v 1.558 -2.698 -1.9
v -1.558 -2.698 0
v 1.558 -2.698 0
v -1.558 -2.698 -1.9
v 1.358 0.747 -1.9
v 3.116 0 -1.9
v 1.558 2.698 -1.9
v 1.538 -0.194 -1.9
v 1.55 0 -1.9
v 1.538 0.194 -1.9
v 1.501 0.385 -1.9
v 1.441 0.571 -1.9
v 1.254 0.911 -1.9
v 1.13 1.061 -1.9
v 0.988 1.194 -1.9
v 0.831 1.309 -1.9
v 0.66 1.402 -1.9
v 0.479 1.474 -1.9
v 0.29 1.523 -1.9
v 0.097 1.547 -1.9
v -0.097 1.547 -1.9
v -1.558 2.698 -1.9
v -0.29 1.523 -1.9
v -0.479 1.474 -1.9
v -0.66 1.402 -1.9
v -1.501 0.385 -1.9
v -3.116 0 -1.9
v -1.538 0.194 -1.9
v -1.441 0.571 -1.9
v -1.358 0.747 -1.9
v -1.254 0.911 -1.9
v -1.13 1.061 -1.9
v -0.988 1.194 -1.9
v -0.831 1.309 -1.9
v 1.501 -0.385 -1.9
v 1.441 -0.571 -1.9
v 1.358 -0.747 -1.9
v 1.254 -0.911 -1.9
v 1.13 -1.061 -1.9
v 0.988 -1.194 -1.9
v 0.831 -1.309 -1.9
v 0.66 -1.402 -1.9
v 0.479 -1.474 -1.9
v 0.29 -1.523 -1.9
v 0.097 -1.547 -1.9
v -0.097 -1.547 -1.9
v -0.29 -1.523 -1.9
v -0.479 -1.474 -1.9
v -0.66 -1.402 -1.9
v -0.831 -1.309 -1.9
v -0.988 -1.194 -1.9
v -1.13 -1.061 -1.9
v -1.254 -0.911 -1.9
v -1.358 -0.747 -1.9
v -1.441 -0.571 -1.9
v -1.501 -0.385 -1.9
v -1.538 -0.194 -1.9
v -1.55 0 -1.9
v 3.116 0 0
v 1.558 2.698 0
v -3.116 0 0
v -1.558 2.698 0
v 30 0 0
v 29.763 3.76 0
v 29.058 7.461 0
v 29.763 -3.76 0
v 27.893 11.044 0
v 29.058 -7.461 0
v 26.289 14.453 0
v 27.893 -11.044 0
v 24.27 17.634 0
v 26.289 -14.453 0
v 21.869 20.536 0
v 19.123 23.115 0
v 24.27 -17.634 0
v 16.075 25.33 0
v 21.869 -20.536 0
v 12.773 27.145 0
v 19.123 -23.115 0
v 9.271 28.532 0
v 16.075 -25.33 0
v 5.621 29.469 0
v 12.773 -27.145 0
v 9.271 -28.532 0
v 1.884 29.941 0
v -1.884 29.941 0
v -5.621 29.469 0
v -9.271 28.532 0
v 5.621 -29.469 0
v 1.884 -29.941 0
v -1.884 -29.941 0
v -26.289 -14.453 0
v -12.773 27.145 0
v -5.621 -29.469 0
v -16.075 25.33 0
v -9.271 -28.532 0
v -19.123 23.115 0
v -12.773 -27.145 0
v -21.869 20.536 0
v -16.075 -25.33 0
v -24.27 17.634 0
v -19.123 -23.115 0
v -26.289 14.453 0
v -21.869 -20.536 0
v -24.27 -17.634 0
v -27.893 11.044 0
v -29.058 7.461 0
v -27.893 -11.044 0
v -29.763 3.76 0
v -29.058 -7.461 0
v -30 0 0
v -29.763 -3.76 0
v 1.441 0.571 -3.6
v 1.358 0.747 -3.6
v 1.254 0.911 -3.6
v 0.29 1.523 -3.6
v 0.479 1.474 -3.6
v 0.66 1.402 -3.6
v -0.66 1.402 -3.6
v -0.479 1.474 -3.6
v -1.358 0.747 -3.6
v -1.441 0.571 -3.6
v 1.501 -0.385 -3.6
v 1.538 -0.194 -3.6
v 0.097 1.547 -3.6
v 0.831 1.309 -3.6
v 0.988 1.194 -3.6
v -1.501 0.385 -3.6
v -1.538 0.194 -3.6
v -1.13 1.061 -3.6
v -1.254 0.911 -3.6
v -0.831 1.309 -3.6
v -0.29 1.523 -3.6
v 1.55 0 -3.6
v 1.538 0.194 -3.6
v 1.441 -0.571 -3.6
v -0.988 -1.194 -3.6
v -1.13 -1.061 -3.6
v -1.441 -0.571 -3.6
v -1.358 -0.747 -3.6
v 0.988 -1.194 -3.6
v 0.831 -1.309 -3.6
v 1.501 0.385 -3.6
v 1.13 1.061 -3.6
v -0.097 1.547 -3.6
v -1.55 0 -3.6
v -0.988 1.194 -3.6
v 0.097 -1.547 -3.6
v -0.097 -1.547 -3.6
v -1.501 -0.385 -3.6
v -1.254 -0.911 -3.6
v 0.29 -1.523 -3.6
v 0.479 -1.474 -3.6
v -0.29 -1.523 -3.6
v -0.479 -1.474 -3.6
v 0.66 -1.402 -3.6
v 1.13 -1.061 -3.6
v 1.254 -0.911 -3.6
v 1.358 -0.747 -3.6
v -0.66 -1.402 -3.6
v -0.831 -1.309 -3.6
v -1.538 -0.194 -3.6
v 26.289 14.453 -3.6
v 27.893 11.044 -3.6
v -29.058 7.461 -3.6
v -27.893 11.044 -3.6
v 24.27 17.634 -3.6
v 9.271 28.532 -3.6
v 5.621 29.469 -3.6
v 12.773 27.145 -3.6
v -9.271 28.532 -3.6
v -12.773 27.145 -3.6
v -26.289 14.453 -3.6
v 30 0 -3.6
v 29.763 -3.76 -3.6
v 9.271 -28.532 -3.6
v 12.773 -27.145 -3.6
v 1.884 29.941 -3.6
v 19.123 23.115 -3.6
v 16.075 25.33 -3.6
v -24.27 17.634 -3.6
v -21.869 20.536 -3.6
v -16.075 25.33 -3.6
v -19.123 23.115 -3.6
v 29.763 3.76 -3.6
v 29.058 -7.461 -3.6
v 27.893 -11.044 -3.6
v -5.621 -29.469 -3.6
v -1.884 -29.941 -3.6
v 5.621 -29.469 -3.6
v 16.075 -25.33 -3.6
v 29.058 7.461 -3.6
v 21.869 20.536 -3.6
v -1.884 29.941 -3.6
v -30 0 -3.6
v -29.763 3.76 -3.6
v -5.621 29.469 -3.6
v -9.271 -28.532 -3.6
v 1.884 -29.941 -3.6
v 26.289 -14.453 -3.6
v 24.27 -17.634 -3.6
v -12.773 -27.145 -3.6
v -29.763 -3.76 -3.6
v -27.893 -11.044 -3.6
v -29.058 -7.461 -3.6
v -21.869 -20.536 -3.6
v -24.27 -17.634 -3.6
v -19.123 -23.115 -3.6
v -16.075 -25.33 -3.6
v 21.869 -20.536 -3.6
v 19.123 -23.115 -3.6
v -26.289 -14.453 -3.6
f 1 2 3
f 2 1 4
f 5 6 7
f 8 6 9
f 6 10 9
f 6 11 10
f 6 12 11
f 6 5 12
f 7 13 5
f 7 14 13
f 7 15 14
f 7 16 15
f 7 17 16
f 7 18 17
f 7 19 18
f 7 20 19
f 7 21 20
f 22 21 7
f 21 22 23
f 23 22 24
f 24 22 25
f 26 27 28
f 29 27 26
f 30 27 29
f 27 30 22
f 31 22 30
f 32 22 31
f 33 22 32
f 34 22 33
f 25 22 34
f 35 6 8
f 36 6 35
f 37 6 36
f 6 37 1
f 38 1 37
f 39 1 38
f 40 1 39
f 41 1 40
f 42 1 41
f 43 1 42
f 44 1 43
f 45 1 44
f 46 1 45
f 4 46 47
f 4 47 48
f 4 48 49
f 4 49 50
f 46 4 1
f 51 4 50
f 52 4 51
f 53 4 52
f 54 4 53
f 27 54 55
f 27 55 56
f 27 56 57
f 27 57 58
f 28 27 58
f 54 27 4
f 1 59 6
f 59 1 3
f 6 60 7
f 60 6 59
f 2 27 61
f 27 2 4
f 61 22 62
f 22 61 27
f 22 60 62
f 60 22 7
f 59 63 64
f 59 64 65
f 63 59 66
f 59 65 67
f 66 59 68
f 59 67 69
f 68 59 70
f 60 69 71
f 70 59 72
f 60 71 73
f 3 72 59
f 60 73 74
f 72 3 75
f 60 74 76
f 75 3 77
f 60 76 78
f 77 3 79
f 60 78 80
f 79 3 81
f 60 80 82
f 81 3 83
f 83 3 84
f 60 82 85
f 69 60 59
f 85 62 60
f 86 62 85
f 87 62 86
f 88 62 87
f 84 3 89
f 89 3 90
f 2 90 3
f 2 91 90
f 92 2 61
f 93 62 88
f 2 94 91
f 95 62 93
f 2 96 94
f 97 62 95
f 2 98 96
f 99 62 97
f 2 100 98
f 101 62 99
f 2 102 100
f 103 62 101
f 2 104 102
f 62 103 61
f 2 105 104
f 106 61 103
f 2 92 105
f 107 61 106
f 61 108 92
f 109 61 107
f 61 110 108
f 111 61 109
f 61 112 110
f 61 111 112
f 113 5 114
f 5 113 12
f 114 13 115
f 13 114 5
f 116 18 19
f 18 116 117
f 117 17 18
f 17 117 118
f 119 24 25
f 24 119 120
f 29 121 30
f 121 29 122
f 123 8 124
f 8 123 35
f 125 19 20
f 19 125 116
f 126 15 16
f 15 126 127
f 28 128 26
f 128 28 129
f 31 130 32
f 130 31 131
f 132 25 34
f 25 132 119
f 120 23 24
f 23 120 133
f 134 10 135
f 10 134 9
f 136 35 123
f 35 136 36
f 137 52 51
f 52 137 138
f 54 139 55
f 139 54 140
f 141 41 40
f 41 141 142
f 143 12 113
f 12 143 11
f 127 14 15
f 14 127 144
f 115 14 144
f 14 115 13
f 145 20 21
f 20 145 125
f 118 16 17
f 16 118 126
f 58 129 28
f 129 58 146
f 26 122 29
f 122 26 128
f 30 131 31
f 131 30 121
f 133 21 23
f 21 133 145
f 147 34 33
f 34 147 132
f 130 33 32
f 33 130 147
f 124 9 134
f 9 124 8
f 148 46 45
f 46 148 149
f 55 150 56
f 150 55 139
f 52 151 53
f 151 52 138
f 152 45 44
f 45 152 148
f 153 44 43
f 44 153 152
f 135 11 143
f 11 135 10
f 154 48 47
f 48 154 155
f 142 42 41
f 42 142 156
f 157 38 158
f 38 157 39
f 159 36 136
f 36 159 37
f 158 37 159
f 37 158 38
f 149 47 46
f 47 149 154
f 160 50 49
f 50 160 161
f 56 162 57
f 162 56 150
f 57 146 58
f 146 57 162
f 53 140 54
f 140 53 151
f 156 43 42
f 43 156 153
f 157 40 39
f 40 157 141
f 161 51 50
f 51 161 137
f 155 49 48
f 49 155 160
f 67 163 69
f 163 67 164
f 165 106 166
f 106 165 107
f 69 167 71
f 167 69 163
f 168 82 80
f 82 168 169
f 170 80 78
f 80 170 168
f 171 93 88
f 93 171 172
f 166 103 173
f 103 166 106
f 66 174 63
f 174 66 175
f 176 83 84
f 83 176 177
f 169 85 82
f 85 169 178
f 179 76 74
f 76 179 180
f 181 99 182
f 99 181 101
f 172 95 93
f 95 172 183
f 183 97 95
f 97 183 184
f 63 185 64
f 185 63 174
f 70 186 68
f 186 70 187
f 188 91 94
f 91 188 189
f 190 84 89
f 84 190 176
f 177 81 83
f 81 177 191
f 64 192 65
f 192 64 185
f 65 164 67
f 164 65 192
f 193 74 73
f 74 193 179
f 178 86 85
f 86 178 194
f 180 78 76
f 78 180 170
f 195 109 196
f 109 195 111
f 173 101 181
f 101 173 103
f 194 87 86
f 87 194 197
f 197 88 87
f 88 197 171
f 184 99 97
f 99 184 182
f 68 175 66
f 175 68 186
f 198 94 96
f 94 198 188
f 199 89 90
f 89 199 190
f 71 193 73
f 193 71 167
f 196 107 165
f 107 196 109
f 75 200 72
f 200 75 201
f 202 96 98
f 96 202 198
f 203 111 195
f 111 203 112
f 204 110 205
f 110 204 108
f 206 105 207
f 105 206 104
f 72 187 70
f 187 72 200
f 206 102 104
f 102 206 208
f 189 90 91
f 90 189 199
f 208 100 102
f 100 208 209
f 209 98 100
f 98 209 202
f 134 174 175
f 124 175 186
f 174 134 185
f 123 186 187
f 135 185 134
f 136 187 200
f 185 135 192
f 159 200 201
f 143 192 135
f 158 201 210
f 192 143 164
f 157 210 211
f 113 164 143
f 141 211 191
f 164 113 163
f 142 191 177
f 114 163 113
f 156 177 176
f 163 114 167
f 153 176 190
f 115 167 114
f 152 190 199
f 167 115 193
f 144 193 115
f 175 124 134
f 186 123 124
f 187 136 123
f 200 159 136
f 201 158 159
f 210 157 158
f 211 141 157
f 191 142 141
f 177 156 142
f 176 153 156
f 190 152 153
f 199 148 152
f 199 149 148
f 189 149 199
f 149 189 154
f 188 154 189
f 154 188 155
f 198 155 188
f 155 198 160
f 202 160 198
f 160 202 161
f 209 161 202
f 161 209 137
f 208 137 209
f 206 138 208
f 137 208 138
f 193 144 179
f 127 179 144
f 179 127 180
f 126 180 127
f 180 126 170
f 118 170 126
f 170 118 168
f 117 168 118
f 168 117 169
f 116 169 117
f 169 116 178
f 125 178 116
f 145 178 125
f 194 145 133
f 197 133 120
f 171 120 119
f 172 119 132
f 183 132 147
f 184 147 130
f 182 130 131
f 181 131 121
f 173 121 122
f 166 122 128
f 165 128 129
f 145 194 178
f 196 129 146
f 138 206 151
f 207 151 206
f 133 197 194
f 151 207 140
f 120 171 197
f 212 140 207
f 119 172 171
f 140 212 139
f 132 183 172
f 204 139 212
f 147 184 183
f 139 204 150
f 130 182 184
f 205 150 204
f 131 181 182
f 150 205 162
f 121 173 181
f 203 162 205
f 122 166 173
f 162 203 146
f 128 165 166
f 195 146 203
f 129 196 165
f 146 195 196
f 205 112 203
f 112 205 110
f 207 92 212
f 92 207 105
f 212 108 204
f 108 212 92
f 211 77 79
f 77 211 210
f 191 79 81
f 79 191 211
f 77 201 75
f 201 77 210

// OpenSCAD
$fn = 50;


difference() {
	union() {
		translate(v = [0, 0, -3.6000000000]) {
			cylinder(h = 3.6000000000, r = 30.0000000000);
		}
	}
	union() {
		translate(v = [0, 0, 0]) {
			rotate(a = [0, 0, 0]) {
				difference() {
					union() {
						translate(v = [0, 0, -1.9000000000]) {
							linear_extrude(height = 1.9000000000) {
								polygon(points = [[3.1158000000, 0.0000000000], [1.5579000000, 2.6983619531], [-1.5579000000, 2.6983619531], [-3.1158000000, 0.0000000000], [-1.5579000000, -2.6983619531], [1.5579000000, -2.6983619531]]);
							}
						}
					}
					union();
				}
			}
		}
		#translate(v = [0, 0, -100.0000000000]) {
			cylinder(h = 200, r = 1.5500000000);
		}
	}
}
